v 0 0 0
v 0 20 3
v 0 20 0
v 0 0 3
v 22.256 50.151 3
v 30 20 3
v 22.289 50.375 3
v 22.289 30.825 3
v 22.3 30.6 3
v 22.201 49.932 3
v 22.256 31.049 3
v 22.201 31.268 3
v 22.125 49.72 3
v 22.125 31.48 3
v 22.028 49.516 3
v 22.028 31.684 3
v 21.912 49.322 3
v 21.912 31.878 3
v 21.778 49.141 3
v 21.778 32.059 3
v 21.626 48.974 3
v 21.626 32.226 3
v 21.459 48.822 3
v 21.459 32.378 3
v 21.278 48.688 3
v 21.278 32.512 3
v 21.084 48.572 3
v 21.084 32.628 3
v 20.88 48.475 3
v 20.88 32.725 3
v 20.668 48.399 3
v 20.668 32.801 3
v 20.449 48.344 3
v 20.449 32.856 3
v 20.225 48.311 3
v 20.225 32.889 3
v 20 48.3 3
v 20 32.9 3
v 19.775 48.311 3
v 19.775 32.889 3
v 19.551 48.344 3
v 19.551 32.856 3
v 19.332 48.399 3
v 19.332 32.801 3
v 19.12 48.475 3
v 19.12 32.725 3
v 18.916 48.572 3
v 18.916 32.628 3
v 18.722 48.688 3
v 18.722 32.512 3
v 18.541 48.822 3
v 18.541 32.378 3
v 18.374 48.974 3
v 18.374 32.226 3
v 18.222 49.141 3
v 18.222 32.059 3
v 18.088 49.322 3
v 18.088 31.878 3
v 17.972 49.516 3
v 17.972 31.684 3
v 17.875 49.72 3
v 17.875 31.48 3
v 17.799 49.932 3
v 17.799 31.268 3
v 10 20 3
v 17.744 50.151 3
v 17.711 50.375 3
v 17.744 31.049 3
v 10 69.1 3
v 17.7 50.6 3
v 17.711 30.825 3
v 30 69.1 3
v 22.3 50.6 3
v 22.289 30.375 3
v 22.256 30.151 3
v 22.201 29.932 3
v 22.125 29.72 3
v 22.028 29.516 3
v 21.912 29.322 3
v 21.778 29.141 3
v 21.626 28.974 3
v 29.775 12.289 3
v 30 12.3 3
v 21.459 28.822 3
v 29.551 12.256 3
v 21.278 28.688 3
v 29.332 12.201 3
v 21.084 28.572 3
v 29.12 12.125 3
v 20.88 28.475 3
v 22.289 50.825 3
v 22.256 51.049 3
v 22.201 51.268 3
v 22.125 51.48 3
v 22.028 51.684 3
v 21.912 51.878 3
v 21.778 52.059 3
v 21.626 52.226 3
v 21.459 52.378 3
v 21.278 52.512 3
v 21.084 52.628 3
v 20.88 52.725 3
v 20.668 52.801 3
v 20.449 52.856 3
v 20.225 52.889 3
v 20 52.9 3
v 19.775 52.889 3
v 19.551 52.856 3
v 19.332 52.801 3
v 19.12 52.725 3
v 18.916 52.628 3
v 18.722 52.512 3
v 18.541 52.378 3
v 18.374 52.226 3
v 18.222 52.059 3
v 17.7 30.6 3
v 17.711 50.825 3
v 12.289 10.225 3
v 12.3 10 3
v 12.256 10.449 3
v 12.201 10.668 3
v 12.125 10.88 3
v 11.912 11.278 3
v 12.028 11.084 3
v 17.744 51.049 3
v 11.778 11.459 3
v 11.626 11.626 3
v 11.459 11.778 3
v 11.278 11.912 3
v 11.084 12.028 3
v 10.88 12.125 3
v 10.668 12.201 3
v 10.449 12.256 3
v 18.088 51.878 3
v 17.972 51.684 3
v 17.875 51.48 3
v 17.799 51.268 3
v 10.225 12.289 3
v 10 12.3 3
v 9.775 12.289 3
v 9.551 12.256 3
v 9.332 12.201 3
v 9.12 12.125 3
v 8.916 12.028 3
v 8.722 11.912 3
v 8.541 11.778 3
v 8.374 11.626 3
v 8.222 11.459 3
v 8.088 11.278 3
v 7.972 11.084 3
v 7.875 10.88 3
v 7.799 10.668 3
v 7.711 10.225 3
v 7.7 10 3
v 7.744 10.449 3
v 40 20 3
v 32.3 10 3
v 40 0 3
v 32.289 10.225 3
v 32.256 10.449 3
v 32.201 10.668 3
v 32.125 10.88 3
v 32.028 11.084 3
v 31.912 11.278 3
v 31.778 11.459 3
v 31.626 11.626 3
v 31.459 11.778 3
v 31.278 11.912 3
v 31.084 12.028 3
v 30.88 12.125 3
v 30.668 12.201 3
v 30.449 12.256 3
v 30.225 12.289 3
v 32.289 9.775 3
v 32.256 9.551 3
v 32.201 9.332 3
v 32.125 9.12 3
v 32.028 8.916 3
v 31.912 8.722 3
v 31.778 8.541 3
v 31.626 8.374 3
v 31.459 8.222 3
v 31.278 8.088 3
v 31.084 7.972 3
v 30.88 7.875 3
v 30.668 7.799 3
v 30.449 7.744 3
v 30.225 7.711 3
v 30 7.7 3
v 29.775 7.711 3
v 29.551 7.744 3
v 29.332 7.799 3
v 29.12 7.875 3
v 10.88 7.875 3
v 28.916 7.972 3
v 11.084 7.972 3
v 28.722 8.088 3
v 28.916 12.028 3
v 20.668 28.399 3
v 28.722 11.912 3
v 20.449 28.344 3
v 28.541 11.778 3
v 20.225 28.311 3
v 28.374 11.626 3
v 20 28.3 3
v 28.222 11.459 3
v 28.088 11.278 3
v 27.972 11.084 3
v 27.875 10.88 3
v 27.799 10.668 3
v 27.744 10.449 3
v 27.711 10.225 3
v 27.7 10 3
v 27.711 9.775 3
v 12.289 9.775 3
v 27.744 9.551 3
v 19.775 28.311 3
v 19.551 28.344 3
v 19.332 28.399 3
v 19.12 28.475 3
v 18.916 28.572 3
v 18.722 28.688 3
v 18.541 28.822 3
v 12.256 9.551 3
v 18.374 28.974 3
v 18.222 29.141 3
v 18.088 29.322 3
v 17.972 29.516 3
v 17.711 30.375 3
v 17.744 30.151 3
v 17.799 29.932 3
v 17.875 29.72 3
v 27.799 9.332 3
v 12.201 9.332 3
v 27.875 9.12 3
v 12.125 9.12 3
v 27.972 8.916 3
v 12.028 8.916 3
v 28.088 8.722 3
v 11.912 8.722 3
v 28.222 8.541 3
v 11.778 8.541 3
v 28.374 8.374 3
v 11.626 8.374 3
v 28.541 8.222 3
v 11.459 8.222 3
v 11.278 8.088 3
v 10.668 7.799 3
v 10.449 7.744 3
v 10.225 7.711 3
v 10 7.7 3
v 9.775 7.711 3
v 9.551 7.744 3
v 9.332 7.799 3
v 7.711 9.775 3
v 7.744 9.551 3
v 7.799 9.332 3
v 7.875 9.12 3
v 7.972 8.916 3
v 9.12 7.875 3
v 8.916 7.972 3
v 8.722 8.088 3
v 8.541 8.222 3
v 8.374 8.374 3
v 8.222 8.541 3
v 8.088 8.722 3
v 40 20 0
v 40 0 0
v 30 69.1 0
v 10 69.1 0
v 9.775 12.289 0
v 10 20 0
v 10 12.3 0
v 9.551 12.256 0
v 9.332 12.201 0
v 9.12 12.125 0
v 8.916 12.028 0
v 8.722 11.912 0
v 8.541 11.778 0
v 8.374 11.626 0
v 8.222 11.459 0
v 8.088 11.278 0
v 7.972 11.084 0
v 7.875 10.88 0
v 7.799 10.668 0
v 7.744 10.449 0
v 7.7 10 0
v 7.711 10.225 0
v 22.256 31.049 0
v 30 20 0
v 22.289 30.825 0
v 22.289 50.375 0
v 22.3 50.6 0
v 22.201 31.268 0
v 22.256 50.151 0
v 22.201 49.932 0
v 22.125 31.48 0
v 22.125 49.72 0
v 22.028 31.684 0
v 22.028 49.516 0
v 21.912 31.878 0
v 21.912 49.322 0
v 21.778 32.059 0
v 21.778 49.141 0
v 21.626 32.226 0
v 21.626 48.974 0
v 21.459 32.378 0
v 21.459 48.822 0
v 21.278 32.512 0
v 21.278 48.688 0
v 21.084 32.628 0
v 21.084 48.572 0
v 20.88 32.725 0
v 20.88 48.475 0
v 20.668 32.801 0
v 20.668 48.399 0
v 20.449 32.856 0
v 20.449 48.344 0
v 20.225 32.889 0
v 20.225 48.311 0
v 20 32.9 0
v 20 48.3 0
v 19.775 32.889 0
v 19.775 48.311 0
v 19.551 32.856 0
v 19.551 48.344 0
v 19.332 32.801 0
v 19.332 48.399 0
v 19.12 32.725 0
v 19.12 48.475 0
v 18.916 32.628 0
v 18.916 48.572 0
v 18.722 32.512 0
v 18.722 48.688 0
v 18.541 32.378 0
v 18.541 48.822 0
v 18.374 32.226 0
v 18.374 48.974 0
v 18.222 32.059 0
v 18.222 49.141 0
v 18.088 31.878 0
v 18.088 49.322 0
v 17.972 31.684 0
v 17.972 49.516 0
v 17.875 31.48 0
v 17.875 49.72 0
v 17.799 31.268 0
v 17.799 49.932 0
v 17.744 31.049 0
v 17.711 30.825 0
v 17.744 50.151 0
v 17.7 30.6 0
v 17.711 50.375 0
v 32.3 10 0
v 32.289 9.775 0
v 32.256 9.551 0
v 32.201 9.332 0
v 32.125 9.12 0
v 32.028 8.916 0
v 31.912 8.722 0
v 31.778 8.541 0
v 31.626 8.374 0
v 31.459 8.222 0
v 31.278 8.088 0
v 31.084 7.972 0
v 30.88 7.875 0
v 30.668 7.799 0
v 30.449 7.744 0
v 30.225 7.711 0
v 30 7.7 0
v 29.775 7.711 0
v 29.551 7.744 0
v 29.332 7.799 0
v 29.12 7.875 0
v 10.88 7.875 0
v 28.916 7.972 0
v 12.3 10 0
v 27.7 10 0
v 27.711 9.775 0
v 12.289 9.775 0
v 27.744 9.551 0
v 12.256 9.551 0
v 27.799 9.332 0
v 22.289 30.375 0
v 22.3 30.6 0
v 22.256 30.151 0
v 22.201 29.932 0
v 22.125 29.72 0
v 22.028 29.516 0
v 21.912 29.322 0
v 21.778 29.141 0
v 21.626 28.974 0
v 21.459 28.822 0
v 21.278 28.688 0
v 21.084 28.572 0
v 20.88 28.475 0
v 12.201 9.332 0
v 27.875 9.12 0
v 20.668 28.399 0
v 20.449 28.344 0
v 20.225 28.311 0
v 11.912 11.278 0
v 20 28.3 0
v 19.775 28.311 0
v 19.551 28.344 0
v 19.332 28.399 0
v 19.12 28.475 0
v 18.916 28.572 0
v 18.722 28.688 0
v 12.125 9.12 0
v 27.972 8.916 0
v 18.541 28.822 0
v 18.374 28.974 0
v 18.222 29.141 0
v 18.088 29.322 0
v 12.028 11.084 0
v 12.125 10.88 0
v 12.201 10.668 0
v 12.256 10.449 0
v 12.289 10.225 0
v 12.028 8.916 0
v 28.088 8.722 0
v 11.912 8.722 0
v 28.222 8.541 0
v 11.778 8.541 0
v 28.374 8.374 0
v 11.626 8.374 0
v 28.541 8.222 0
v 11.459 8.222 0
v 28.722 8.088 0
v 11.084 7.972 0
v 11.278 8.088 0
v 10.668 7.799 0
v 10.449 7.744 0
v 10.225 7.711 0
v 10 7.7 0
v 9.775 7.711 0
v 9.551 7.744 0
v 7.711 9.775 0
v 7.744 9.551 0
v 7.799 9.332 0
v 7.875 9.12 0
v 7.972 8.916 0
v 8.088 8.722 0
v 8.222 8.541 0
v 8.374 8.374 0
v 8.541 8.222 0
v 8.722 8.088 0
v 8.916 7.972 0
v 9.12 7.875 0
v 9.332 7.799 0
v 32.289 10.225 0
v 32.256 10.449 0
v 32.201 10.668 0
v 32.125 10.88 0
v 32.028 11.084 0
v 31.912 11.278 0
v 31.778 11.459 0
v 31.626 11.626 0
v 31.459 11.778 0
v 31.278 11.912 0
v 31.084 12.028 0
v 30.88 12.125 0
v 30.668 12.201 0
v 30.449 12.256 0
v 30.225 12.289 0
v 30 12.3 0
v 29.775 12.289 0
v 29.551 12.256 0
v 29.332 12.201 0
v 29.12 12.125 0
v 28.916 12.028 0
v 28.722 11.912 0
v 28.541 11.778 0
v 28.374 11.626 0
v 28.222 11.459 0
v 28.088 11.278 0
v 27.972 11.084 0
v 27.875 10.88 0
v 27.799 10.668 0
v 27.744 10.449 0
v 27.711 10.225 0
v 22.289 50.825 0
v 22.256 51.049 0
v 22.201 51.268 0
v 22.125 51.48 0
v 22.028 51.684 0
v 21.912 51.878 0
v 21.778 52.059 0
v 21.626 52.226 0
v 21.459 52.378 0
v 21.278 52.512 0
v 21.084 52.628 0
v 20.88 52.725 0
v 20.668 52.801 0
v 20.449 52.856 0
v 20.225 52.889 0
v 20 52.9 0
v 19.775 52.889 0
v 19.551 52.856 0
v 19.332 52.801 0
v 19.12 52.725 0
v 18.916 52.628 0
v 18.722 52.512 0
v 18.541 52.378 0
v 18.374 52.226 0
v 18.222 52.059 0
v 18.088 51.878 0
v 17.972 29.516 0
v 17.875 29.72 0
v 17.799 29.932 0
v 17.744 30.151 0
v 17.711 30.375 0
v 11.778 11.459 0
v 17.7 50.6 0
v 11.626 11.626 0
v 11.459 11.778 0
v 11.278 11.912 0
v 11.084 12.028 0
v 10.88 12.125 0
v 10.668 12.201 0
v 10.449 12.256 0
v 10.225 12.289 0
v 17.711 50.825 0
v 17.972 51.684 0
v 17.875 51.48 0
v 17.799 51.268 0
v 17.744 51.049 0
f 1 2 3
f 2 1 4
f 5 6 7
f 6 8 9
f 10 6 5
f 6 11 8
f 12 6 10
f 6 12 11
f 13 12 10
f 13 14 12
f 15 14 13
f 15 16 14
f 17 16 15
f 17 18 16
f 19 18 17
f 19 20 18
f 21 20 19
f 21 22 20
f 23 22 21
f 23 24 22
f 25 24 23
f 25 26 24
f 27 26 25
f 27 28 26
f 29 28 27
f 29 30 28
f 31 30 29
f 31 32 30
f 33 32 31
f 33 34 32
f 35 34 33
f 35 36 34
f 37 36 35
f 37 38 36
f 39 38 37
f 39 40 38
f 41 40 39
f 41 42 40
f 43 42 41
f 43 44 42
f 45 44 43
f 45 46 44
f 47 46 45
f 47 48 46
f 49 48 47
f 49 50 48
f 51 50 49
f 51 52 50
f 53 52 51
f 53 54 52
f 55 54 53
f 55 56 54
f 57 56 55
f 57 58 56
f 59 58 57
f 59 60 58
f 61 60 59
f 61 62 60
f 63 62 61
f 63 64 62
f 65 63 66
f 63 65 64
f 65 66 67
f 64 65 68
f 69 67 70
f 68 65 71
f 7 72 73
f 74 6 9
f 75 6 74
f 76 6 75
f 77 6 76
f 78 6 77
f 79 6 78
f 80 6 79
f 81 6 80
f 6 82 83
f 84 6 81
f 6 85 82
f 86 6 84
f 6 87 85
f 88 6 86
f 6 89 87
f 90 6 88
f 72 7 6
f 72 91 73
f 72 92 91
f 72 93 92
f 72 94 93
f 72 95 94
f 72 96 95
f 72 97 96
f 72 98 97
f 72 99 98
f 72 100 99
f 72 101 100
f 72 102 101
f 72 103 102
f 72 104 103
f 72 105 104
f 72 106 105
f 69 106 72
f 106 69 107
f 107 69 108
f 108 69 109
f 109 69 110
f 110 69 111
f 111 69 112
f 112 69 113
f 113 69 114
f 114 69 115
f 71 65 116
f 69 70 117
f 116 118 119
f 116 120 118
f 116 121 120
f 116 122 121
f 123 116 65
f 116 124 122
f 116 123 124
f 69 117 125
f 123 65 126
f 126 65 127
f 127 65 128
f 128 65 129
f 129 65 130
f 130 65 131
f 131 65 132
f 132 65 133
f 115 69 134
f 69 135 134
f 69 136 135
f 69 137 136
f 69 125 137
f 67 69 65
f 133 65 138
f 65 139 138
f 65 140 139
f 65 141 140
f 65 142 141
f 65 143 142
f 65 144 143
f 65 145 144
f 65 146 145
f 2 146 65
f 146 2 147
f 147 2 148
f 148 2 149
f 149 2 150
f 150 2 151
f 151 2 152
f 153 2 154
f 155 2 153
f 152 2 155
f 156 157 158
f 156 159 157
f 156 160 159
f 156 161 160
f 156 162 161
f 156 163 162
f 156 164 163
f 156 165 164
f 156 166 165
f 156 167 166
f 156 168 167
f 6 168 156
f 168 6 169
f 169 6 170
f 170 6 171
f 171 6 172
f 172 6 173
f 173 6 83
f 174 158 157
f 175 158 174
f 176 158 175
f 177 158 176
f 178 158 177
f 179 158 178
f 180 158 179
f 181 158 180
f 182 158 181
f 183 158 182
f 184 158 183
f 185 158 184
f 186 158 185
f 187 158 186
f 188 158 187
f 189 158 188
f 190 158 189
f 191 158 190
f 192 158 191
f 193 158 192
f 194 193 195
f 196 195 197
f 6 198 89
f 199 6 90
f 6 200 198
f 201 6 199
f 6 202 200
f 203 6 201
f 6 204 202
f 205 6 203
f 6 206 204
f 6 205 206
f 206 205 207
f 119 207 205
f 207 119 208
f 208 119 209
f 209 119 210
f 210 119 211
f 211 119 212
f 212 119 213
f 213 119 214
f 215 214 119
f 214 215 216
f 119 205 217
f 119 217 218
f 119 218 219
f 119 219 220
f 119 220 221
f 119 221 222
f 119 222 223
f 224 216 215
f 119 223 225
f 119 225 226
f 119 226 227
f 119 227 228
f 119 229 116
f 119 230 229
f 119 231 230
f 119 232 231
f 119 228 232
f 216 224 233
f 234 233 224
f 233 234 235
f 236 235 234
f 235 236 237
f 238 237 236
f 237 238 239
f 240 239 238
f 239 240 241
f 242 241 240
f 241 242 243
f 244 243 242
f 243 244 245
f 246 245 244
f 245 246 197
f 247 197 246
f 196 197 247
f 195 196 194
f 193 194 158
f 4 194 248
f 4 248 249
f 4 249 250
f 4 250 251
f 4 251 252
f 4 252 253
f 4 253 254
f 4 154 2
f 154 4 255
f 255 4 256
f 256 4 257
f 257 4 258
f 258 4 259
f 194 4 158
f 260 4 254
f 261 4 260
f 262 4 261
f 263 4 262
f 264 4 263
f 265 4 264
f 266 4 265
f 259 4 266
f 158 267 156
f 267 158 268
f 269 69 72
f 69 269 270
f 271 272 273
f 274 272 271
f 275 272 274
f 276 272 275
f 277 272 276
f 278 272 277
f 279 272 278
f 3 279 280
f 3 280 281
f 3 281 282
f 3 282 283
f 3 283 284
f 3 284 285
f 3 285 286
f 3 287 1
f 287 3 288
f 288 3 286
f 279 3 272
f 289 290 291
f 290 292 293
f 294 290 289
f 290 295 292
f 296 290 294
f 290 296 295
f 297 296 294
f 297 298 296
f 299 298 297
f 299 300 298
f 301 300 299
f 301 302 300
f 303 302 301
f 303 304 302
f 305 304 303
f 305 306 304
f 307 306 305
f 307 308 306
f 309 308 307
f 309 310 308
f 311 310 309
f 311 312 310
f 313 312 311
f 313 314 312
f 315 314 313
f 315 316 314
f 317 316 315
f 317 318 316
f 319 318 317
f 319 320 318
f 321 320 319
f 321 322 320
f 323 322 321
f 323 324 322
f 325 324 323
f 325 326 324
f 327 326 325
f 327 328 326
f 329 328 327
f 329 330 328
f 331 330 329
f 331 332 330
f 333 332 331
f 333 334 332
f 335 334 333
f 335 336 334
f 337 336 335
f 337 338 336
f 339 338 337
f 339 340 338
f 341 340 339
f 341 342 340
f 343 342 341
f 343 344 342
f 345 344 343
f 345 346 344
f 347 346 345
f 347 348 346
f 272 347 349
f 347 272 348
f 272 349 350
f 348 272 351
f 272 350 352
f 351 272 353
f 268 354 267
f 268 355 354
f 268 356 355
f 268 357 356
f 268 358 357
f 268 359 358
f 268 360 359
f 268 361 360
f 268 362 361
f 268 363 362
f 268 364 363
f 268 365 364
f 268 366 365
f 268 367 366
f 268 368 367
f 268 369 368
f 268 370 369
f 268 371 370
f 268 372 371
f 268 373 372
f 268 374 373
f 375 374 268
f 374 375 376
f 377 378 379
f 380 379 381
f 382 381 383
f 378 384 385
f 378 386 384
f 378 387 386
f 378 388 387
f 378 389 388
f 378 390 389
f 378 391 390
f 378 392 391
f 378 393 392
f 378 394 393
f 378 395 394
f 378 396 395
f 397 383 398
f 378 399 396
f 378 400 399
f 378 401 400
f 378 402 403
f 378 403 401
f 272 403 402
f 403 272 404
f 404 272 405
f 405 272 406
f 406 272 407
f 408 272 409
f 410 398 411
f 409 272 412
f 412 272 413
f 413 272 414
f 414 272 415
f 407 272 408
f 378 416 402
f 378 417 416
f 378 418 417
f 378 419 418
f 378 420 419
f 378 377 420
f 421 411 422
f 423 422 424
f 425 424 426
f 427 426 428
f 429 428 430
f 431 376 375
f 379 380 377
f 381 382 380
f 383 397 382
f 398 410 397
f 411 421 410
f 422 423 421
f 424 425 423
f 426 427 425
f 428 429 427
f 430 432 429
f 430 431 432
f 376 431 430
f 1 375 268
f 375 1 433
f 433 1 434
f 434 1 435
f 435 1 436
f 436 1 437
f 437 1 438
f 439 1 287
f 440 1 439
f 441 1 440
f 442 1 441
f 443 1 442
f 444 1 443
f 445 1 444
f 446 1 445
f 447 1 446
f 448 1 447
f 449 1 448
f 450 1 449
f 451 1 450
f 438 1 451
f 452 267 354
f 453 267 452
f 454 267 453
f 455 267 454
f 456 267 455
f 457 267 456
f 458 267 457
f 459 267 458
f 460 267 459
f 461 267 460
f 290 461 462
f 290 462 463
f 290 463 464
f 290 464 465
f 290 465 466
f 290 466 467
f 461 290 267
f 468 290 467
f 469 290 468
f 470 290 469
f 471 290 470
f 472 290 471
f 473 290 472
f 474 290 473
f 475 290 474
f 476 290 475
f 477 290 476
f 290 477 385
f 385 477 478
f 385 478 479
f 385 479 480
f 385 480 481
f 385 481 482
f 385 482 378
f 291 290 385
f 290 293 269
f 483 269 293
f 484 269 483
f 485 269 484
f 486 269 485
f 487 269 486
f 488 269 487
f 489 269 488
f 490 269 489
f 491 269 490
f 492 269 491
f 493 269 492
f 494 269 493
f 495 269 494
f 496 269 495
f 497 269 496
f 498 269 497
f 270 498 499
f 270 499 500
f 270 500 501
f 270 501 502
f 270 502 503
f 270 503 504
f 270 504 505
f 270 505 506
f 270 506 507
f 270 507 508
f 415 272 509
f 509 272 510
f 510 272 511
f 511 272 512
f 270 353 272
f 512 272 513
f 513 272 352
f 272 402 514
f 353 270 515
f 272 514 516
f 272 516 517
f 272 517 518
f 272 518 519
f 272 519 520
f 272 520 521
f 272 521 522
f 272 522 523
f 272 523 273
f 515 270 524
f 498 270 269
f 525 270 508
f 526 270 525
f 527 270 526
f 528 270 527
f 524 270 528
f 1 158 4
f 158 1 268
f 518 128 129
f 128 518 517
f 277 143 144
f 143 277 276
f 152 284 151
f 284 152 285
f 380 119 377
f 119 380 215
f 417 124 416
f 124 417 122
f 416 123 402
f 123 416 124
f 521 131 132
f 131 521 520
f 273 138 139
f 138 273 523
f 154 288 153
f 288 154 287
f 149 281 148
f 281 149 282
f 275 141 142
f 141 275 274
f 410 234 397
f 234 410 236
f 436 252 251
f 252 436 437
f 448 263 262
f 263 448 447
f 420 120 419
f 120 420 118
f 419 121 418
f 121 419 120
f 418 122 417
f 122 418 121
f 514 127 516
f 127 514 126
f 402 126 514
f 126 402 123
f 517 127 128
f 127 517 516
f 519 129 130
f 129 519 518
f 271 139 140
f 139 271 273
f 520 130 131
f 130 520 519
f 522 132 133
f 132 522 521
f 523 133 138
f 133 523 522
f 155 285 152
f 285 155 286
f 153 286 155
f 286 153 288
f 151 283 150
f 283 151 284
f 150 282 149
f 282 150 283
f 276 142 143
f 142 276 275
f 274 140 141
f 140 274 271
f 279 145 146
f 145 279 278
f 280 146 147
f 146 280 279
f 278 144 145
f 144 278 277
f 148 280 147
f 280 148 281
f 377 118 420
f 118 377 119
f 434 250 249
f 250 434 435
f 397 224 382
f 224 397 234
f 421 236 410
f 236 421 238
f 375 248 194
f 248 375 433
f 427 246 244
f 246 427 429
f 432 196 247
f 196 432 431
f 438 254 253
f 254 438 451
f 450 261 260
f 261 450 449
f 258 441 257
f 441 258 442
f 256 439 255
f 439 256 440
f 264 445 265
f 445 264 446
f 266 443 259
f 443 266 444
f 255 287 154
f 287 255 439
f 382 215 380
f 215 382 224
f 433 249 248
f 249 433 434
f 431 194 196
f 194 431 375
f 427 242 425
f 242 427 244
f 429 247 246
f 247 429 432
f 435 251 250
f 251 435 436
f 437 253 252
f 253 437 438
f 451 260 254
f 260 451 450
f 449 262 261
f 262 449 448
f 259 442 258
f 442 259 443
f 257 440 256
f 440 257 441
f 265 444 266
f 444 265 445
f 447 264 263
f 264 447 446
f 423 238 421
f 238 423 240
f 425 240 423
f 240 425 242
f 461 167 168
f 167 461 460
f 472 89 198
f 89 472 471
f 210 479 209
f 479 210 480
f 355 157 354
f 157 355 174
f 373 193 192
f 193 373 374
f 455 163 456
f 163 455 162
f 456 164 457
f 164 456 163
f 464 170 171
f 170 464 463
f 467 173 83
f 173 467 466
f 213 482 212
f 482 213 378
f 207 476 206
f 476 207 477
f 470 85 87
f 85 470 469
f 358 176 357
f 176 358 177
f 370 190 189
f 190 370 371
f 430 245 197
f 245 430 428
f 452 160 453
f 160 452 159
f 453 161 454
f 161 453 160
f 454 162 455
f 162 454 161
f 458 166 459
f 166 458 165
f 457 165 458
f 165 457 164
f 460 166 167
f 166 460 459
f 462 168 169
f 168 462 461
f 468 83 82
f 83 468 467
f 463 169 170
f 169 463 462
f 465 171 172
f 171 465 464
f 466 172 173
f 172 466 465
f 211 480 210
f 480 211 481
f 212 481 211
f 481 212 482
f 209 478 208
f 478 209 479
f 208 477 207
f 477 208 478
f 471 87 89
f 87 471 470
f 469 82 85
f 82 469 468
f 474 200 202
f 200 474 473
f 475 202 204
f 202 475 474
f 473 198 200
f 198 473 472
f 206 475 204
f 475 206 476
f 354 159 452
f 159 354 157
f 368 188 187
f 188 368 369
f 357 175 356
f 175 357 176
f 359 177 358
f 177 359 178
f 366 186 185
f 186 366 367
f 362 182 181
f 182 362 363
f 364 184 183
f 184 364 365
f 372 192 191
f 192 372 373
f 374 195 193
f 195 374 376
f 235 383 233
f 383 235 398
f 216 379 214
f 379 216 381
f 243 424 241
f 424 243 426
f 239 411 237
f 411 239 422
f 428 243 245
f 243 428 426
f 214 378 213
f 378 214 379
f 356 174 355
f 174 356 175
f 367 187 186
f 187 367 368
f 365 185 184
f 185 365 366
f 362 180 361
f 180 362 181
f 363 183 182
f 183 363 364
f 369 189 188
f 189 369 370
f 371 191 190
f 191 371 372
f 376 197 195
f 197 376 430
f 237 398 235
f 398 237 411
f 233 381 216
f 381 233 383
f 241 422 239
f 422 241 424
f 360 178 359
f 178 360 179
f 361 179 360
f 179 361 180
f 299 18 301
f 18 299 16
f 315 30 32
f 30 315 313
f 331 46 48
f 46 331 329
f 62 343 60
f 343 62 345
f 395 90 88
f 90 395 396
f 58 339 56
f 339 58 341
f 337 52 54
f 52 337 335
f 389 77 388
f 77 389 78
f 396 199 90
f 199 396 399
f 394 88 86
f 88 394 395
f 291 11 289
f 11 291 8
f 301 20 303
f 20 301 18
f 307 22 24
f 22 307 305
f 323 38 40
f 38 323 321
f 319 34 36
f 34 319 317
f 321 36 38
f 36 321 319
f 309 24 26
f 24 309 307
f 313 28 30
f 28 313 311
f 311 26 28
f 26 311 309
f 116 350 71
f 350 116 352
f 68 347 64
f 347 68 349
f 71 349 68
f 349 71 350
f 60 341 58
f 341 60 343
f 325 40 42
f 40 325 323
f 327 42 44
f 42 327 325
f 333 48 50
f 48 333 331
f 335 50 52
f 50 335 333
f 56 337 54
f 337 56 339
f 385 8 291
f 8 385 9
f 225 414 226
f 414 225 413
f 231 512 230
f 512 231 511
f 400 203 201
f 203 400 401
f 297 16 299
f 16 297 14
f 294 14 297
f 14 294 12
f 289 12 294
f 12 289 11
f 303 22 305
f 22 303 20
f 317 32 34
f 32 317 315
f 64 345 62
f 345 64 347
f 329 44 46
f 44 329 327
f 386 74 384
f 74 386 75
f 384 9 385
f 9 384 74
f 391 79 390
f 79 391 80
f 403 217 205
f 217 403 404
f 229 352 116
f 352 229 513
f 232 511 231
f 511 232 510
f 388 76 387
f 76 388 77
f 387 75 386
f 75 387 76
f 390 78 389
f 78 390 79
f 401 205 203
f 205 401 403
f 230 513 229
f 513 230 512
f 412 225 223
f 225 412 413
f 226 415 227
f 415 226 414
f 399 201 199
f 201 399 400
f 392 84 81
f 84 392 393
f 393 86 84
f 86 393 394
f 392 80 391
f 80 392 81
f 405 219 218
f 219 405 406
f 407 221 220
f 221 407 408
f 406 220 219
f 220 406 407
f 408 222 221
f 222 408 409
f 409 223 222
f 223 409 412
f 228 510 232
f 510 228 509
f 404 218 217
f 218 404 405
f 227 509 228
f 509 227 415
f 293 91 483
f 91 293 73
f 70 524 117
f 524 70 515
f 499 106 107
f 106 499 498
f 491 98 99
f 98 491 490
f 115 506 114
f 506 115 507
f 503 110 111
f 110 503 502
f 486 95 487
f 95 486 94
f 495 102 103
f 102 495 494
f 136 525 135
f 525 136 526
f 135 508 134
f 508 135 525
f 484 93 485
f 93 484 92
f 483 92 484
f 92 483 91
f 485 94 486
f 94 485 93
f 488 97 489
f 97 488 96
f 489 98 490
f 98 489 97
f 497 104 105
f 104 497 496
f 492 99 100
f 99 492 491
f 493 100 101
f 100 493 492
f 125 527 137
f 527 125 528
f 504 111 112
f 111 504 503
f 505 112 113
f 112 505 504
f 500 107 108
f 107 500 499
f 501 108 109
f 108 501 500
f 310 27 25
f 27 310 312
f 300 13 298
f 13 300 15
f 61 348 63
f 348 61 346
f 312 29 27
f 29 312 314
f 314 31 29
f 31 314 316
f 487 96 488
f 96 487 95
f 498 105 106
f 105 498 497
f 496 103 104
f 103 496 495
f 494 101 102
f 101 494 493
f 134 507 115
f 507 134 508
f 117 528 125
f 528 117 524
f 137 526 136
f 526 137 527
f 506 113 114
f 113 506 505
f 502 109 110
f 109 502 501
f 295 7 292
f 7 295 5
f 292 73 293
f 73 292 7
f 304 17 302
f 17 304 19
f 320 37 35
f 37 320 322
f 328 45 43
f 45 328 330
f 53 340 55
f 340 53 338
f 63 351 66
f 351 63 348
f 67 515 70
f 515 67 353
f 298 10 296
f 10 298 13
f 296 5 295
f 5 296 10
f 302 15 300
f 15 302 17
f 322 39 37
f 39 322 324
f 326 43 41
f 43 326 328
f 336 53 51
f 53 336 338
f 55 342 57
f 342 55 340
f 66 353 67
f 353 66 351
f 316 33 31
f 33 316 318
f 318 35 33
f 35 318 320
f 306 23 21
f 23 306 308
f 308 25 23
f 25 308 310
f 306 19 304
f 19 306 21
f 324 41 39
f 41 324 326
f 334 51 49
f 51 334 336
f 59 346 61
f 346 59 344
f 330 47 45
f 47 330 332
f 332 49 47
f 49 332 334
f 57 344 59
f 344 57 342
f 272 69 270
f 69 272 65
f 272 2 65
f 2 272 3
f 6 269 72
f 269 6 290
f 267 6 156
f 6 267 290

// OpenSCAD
$fn=64;
difference(){
cube([40,69.1,3]);
translate([10,10,-1])
cylinder (d=4.6, h=5);
translate([30,10,-1])
cylinder (d=4.6, h=5);

translate([20,30.6,-1])
cylinder (d=4.6, h=5);
translate([20,50.6,-1])
cylinder (d=4.6, h=5);
translate([-1,20,-1])
cube([11,56,5]);
translate([30,20,-1])
cube([11,56,5]);
}
